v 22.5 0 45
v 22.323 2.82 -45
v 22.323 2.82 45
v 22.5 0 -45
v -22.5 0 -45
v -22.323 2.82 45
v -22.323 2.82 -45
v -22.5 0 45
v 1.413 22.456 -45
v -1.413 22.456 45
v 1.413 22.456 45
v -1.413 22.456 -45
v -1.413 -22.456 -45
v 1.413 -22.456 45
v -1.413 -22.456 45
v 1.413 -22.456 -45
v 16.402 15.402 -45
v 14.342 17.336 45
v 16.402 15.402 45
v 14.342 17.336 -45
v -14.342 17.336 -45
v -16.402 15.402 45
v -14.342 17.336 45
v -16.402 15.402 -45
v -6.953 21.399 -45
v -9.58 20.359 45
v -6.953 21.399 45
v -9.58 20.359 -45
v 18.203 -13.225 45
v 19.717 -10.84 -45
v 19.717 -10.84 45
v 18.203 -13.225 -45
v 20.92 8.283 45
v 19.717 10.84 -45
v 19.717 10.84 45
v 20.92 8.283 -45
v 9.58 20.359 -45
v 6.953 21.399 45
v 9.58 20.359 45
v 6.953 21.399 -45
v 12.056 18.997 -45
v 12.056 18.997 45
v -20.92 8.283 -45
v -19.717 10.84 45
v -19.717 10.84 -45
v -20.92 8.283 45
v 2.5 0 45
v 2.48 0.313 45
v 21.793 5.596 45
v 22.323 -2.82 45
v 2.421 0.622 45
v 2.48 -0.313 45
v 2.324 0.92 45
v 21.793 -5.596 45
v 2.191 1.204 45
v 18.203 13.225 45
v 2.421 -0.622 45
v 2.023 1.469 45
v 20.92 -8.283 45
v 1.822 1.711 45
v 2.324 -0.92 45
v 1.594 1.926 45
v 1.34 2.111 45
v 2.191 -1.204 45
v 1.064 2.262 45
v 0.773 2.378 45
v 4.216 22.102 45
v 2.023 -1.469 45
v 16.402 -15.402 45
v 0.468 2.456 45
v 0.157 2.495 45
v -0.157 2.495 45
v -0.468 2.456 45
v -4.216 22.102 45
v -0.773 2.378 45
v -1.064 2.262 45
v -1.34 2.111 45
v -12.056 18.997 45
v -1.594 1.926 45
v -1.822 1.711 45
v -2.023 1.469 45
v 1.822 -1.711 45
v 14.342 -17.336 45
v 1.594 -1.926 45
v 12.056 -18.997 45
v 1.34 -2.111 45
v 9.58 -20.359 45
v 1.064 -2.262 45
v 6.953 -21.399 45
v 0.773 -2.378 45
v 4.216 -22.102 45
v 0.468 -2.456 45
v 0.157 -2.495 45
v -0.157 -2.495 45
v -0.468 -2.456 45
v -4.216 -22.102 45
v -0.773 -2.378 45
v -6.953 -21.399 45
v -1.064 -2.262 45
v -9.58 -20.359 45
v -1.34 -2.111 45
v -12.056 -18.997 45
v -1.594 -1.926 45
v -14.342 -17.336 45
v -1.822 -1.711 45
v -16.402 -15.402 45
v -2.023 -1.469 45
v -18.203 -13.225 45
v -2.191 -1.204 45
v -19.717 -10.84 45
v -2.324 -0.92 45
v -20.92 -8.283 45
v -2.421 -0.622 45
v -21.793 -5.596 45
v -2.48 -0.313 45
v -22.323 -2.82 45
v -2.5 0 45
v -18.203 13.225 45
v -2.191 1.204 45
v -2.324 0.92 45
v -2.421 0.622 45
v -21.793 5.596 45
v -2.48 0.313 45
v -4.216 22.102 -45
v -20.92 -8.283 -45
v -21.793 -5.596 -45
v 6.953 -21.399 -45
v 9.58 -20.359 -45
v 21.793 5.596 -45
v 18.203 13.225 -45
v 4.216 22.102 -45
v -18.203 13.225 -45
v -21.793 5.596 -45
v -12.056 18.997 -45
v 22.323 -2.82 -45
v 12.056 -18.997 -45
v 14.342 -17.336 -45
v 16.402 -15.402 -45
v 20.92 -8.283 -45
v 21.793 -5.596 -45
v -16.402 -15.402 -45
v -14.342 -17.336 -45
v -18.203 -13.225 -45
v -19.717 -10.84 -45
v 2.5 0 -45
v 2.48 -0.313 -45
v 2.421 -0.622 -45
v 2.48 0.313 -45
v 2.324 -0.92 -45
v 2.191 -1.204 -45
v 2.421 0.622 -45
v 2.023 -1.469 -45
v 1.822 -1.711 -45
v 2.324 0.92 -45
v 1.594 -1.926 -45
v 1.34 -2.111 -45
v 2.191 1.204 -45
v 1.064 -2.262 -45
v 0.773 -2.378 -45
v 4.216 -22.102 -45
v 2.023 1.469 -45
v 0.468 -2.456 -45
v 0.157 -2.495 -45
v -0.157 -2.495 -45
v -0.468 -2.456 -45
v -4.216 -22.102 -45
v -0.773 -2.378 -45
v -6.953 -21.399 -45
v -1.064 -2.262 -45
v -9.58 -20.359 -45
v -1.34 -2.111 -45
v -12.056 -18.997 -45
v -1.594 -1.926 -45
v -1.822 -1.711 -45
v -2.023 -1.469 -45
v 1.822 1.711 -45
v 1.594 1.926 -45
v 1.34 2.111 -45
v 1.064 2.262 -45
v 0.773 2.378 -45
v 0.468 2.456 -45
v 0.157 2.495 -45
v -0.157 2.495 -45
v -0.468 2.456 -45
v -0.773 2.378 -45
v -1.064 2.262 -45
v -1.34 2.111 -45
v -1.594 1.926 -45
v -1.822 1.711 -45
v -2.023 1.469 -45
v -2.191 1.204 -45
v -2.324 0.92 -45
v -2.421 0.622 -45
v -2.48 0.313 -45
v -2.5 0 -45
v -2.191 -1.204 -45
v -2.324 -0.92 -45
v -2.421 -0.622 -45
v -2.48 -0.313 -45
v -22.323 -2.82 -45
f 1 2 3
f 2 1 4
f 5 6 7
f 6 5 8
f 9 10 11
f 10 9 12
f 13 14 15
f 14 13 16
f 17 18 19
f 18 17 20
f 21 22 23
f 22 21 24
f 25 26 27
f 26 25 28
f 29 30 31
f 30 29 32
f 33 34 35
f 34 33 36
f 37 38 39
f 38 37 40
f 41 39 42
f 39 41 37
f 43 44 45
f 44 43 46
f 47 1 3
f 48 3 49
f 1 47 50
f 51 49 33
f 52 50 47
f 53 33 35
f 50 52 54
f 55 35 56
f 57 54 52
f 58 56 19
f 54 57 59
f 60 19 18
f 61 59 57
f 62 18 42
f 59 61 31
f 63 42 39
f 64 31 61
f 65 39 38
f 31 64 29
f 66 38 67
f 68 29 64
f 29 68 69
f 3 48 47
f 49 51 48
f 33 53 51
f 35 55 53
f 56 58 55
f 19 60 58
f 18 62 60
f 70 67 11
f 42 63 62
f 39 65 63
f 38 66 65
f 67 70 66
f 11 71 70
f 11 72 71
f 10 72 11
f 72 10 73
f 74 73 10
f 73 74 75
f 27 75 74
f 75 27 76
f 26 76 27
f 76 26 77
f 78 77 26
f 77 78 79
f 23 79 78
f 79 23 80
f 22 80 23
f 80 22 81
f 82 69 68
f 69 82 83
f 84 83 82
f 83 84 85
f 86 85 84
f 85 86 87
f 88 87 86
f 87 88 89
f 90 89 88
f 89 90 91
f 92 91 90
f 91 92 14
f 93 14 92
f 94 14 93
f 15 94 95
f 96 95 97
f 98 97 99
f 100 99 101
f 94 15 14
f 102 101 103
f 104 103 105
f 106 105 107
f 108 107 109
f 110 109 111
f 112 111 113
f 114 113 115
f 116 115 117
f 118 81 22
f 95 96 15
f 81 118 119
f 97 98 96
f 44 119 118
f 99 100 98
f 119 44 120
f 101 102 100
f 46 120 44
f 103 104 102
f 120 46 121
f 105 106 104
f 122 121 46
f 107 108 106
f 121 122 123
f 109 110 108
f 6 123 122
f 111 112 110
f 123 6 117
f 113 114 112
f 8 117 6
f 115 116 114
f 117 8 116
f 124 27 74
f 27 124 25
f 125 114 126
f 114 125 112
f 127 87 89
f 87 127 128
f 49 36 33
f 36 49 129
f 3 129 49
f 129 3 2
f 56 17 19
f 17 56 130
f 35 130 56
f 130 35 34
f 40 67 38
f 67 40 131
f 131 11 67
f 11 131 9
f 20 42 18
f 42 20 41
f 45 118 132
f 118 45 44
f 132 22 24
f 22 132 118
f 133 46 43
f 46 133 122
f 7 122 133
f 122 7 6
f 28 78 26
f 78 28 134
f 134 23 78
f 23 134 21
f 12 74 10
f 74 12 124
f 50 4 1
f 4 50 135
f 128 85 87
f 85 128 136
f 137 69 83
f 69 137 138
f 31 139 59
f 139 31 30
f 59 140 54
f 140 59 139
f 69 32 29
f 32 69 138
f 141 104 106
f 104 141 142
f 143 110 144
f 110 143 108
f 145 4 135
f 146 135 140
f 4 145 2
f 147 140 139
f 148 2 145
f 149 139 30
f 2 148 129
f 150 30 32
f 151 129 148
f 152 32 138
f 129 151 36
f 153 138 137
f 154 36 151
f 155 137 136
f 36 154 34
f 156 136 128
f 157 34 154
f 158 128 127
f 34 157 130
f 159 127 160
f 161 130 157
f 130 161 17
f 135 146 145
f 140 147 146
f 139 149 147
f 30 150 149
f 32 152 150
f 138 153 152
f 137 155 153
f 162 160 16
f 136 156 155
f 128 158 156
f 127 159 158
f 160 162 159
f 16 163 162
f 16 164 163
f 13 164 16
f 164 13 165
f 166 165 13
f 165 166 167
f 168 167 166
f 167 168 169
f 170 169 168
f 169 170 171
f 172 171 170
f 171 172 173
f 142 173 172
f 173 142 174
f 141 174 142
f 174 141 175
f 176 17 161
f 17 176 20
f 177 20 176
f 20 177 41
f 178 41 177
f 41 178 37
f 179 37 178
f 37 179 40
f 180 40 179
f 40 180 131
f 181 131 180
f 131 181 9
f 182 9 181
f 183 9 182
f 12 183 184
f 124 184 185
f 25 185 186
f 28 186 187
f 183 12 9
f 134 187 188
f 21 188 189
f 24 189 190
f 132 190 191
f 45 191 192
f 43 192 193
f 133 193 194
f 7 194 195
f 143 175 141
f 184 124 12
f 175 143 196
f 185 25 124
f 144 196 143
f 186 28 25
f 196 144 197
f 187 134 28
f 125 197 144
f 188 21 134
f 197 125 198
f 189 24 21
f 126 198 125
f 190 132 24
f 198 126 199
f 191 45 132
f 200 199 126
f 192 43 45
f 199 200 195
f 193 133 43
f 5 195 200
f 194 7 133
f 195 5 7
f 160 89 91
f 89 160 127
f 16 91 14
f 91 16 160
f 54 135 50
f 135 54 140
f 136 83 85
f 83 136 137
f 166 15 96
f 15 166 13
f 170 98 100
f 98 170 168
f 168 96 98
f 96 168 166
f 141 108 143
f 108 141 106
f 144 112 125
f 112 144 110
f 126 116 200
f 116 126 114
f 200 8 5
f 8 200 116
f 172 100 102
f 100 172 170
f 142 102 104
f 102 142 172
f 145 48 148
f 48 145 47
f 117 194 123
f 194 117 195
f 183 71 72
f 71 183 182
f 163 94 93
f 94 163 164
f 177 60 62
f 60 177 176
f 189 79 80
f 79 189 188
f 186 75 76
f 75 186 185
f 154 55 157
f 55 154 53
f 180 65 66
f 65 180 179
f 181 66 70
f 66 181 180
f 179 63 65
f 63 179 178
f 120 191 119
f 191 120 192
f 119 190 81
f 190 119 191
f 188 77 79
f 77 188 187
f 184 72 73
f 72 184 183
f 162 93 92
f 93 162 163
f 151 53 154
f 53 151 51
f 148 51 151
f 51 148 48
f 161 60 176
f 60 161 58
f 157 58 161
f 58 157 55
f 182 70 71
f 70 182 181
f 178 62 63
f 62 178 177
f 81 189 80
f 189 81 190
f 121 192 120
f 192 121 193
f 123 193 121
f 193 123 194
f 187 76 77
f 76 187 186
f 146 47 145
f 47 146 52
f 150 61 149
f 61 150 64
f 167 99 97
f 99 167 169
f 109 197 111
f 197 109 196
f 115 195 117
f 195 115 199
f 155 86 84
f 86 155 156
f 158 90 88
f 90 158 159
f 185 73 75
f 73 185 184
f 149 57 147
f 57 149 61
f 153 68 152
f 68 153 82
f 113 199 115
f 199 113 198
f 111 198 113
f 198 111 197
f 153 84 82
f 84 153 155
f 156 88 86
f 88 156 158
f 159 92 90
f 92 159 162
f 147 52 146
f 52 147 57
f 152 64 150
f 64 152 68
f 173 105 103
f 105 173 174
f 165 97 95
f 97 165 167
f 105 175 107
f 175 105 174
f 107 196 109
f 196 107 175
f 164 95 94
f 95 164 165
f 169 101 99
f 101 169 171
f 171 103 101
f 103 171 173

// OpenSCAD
$fn = 50;


difference() {
	union() {
		translate(v = [0, 0, -45.0000000000]) {
			cylinder(h = 90, r = 22.5000000000);
		}
	}
	union() {
		translate(v = [0, 0, -100.0000000000]) {
			cylinder(h = 200, r = 2.5000000000);
		}
	}
}
